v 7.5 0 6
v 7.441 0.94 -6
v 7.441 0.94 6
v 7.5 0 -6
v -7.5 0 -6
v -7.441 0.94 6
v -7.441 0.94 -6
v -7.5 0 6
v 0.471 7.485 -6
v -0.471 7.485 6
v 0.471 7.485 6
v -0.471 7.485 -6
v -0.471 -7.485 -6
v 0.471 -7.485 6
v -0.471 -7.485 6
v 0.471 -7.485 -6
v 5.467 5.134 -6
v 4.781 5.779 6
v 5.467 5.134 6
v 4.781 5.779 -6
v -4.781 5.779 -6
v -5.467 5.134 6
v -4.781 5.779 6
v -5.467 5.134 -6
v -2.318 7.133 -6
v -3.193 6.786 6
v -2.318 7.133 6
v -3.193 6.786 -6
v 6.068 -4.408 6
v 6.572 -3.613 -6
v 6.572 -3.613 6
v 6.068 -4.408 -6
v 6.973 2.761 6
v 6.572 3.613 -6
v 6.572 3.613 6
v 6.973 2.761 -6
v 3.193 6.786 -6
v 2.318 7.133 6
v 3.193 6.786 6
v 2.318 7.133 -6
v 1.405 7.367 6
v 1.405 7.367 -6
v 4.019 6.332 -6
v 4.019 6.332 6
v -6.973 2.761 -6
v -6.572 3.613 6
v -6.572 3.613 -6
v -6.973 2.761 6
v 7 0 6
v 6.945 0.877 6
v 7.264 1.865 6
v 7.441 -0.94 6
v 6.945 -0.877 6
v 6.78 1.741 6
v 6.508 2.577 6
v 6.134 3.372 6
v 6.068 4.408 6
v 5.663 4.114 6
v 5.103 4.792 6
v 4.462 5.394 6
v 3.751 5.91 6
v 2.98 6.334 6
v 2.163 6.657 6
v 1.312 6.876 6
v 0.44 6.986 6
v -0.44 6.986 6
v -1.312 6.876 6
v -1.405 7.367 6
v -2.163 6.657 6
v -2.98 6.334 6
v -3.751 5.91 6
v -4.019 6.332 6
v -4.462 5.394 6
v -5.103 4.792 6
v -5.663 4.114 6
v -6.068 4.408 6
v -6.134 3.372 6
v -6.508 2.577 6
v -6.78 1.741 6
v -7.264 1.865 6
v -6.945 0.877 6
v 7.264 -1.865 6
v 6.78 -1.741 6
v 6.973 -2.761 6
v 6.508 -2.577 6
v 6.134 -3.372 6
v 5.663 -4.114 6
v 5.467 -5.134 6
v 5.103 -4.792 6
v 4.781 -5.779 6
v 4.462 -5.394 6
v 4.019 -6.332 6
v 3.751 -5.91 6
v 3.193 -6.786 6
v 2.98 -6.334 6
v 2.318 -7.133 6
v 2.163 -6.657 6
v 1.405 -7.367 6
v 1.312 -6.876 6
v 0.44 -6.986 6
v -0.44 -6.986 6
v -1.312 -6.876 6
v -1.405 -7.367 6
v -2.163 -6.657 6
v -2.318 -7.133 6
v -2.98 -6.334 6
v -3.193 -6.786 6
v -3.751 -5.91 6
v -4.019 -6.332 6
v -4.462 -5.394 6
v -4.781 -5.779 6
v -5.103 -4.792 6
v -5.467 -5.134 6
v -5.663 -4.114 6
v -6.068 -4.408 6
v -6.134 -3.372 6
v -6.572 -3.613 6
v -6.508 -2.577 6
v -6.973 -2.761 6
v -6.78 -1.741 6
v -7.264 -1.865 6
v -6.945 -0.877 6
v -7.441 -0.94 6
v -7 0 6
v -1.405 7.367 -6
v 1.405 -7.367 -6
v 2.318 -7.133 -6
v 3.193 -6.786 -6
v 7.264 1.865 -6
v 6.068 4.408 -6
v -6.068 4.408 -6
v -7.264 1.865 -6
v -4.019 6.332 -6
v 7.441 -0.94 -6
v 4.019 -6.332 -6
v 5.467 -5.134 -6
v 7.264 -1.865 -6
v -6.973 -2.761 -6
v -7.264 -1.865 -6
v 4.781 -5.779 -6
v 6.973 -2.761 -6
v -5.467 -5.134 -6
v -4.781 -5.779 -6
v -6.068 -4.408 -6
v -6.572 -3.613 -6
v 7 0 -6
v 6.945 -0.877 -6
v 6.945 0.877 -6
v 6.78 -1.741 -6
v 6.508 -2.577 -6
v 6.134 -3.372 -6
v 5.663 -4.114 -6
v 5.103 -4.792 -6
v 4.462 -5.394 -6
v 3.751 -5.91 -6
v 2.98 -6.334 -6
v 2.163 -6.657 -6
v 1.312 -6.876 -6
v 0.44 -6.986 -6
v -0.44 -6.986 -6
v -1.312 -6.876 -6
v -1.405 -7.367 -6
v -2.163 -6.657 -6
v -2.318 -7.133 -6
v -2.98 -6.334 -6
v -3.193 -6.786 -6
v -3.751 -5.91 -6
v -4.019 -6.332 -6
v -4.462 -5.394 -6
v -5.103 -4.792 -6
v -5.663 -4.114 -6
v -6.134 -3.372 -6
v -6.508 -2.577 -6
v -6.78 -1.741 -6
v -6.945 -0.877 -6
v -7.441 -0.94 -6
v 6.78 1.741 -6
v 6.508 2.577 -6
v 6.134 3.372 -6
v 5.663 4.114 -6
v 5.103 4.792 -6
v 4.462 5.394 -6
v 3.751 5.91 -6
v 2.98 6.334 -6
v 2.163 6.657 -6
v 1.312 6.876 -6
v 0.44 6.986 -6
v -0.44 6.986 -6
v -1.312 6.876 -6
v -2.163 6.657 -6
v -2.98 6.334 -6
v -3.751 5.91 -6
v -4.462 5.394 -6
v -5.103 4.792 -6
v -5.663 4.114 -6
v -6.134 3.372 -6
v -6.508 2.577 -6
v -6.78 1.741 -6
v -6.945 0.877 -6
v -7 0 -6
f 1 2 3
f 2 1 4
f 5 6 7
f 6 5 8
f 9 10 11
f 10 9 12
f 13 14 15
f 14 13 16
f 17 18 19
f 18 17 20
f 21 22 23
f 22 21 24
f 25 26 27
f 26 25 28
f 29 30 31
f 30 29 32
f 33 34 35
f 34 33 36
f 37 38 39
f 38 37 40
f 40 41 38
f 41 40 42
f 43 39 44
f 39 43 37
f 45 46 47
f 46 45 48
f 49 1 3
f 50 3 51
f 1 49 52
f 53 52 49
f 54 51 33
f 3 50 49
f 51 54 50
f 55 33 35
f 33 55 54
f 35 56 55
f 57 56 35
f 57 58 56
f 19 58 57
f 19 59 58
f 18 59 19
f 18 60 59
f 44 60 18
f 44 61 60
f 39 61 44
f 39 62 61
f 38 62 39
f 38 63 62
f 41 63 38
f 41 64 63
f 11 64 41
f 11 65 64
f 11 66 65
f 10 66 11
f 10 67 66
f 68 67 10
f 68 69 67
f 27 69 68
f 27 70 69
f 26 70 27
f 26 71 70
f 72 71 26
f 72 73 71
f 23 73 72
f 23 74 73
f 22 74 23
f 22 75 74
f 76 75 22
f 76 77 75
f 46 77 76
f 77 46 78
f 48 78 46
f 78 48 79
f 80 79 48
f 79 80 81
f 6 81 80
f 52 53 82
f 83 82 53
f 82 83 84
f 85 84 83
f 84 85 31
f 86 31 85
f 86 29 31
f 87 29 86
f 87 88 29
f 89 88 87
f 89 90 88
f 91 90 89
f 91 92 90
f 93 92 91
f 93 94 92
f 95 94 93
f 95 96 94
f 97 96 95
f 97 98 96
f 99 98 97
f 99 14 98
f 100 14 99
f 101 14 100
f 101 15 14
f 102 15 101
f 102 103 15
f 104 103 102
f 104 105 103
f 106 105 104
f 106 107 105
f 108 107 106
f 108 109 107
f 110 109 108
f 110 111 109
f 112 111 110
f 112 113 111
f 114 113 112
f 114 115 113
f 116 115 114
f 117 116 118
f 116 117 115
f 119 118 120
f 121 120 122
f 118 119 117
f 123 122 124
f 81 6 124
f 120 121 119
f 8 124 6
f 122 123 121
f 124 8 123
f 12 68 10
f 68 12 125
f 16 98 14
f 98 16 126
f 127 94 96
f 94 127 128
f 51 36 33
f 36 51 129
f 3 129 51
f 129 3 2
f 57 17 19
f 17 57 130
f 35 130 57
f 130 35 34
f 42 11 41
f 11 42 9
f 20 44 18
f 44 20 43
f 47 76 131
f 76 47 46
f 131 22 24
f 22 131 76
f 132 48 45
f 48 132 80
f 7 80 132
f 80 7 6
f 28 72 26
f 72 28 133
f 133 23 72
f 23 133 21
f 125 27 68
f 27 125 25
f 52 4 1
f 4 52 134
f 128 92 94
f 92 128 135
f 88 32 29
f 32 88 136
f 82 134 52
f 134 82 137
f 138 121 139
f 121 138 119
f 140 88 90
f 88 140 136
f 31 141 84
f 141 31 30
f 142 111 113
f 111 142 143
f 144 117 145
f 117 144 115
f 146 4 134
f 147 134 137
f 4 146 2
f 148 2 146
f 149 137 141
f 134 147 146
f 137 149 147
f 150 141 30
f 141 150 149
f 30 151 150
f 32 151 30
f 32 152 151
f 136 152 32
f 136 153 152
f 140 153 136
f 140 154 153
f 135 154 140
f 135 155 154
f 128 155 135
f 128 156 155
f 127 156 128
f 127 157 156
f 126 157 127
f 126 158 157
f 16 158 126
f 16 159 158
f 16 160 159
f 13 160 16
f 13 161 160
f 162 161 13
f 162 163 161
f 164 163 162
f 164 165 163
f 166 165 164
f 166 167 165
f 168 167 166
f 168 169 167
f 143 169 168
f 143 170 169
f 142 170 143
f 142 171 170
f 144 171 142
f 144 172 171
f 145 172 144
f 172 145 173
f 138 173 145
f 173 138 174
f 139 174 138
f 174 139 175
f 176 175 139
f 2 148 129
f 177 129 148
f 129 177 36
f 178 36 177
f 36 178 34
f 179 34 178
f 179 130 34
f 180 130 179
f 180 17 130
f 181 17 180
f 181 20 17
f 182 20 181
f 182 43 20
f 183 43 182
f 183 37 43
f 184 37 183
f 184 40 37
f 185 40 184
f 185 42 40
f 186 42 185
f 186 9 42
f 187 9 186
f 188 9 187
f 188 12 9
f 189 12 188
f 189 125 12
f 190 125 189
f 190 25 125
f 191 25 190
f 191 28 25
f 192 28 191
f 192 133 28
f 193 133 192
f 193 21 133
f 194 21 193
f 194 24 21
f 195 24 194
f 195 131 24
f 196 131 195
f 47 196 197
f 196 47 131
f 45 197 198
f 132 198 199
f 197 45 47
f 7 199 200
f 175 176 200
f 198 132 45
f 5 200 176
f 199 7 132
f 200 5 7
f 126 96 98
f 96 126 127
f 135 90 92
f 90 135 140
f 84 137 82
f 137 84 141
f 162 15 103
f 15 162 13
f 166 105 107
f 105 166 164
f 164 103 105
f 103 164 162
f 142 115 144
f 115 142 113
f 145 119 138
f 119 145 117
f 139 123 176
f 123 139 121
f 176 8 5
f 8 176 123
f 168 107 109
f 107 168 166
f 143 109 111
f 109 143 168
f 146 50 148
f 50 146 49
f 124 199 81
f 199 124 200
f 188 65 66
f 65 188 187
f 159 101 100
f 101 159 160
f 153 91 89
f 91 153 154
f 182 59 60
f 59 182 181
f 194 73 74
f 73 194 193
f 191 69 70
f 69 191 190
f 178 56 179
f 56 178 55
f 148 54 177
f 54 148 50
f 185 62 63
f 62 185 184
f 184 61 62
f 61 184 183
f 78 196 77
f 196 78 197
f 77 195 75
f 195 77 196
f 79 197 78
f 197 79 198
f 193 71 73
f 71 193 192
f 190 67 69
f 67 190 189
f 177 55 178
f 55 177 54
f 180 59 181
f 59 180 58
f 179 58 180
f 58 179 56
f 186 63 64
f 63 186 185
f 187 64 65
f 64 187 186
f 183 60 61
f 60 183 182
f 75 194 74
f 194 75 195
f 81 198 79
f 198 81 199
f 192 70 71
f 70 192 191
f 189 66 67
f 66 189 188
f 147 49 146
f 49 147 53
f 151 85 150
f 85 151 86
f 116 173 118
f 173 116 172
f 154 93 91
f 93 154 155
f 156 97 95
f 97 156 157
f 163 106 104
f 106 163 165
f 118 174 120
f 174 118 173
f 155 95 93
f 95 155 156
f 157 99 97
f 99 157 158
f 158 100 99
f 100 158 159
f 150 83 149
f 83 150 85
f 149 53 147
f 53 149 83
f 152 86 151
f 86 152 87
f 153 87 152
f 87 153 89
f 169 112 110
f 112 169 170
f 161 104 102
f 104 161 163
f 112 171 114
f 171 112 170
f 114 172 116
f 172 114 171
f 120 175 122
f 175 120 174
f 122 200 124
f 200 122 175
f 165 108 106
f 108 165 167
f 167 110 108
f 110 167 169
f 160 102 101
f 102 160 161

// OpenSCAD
$fn = 50;


difference() {
	union() {
		translate(v = [0, 0, -6.0000000000]) {
			cylinder(h = 12, r = 7.5000000000);
		}
	}
	union() {
		translate(v = [0, 0, -100.0000000000]) {
			cylinder(h = 200, r = 7);
		}
	}
}
